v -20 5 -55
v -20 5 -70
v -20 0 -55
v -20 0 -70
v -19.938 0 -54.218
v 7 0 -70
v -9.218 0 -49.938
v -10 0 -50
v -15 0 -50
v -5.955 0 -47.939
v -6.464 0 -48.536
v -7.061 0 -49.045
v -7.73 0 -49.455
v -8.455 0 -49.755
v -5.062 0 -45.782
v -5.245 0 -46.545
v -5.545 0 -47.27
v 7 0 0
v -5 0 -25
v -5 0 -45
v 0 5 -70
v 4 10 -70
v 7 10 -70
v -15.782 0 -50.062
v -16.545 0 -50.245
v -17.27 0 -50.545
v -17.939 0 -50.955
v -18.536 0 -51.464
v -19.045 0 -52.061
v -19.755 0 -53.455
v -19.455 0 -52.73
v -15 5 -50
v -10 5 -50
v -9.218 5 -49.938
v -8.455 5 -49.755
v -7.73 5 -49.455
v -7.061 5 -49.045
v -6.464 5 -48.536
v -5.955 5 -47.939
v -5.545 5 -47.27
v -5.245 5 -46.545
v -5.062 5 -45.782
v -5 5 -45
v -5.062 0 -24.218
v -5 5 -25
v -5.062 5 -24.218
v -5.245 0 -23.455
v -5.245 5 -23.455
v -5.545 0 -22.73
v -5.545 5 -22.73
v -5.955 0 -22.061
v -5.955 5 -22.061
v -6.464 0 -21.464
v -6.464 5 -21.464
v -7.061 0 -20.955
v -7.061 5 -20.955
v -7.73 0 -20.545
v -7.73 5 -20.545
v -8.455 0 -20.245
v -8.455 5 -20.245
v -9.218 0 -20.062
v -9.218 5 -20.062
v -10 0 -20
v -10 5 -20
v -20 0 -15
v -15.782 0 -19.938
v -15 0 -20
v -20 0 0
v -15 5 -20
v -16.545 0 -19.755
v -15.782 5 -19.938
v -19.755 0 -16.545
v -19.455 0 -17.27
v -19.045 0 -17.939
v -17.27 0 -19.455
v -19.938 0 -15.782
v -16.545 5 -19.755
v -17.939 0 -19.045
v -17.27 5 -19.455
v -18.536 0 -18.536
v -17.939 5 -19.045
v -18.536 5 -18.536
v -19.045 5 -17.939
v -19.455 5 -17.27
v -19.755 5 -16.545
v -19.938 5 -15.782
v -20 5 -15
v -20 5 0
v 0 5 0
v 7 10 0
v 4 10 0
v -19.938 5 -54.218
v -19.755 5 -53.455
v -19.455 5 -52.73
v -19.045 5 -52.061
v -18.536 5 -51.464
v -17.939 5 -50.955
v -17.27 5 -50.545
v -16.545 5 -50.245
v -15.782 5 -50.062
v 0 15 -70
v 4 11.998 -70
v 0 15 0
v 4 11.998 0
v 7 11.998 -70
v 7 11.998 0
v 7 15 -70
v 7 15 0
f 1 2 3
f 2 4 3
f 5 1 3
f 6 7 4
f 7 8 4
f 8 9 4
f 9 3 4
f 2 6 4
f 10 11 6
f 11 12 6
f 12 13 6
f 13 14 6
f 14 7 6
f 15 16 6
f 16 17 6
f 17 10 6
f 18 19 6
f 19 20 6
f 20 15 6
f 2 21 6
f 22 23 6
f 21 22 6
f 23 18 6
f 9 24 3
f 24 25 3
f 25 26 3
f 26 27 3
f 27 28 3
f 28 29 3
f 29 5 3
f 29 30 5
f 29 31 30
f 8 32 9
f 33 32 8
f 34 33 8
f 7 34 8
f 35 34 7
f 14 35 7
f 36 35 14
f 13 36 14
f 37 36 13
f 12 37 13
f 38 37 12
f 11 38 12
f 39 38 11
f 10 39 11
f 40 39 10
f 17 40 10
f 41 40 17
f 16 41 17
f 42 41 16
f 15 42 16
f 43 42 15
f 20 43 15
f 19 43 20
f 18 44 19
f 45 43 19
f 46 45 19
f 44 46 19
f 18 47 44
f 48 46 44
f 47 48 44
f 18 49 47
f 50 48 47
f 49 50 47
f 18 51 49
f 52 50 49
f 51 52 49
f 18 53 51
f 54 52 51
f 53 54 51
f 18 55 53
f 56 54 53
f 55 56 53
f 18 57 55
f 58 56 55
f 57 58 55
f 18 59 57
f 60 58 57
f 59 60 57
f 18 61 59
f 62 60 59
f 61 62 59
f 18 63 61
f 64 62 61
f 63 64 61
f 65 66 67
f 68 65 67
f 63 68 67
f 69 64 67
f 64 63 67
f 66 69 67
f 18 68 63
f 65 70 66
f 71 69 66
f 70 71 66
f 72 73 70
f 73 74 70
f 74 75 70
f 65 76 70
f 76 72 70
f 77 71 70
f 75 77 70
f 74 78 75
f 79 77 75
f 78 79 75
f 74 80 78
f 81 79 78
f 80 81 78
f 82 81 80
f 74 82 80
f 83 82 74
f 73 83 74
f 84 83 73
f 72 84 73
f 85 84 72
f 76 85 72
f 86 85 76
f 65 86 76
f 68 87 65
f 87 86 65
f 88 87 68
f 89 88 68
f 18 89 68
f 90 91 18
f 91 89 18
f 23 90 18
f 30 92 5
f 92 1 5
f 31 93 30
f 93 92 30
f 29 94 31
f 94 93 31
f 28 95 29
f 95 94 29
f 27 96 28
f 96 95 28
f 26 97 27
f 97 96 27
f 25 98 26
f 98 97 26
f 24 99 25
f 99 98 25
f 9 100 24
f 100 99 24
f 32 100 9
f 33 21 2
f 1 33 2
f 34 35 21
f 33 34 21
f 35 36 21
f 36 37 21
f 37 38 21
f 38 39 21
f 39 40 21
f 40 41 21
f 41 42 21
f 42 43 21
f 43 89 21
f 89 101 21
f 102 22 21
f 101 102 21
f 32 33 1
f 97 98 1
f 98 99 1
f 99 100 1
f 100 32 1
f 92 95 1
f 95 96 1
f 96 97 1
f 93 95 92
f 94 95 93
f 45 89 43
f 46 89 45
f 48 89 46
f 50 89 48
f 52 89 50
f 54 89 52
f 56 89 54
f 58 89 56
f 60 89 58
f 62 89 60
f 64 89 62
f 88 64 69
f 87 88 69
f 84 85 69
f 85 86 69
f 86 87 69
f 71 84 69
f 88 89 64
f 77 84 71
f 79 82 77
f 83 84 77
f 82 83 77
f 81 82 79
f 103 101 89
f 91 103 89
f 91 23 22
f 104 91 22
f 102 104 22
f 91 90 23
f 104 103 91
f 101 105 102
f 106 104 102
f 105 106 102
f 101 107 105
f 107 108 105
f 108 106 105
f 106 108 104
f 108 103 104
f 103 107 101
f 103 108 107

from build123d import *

# Parameters (mm, degrees)
SKETCH4_W           = 20
SKETCH4_H           = 70
BOSS_EXTRUDE2_DEPTH = 5
SKETCH5_W           = 7
SKETCH5_H           = 70
BOSS_EXTRUDE3_DEPTH = 10
SKETCH6_W           = 70
SKETCH6_H           = 1.998143523
CUT_EXTRUDE1_DEPTH  = 3
SKETCH8_W           = 10
SKETCH8_H           = 30
CUT_EXTRUDE2_DEPTH  = 74.484692283
FILLET3_START       = -1
FILLET3_DEPTH       = 6
FILLET3_2_DEPTH     = 5
FILLET4_R           = 5
SKETCH10_W          = 13.639904779
SKETCH10_H          = 5
CUT_EXTRUDE3_DEPTH  = 75.330343737
SKETCH11_W          = 70
SKETCH11_H          = 5
BOSS_EXTRUDE4_DEPTH = 20
SKETCH13_W          = 15
SKETCH13_H          = 30
CUT_EXTRUDE4_DEPTH  = 20
FILLET6_R           = 5


with BuildPart() as part:
    # Sketch4 → Boss-Extrude2 (new body)
    with BuildSketch(Plane(origin=(0, 0, 0), x_dir=(1, 0, 0), z_dir=(0, 1, 0))):
        with Locations((10, 35)):
            Rectangle(SKETCH4_W, SKETCH4_H)
    extrude(amount=BOSS_EXTRUDE2_DEPTH)

    # Sketch5 → Boss-Extrude3 (add)
    with BuildSketch(Plane(origin=(0, 5, 0), x_dir=(1, 0, 0), z_dir=(0, 1, 0))):
        with Locations((3.5, 35)):
            Rectangle(SKETCH5_W, SKETCH5_H)
    extrude(amount=BOSS_EXTRUDE3_DEPTH)

    # Sketch6 → Cut-Extrude1 (cut)
    with BuildSketch(Plane(origin=(7, 0, 0), x_dir=(0, 0, -1), z_dir=(1, 0, 0))):
        with Locations((35, 10.999071762)):
            Rectangle(SKETCH6_W, SKETCH6_H)
    extrude(amount=-CUT_EXTRUDE1_DEPTH, mode=Mode.SUBTRACT)

    # Sketch8 → Cut-Extrude2 (cut, through all)
    with BuildSketch(Plane(origin=(0, 5, 0), x_dir=(1, 0, 0), z_dir=(0, 1, 0))):
        with Locations((15, 35)):
            Rectangle(SKETCH8_W, SKETCH8_H)
    extrude(amount=-CUT_EXTRUDE2_DEPTH, mode=Mode.SUBTRACT)

    # Fillet3: read off the stored shape, not the designer's step
    # Fillet3 outline → Fillet3 (cut)
    with BuildSketch(Plane(origin=(0, 0, 0), x_dir=(1, 0, 0), z_dir=(0, 1, 0)).offset(FILLET3_START)):
        with BuildLine():
            Line((20, 50), (20, 55))
            ThreePointArc((20, 55), (18.535533906, 51.464466094), (15, 50))
            Line((15, 50), (20, 50))
        make_face()
        with BuildLine():
            Line((20, 20), (15, 20))
            ThreePointArc((15, 20), (18.535533906, 18.535533906), (20, 15))
            Line((20, 15), (20, 20))
        make_face()
    extrude(amount=FILLET3_DEPTH, mode=Mode.SUBTRACT)

    # Fillet3 2 outline → Fillet3 2 (add)
    with BuildSketch(Plane(origin=(0, 0, 0), x_dir=(1, 0, 0), z_dir=(0, 1, 0))):
        with BuildLine():
            ThreePointArc((15, 20), (11.464466094, 21.464466094), (10, 25))
            Line((10, 25), (10, 20))
            Line((10, 20), (15, 20))
        make_face()
        with BuildLine():
            ThreePointArc((10, 45), (11.464466094, 48.535533906), (15, 50))
            Line((15, 50), (10, 50))
            Line((10, 50), (10, 45))
        make_face()
    extrude(amount=FILLET3_2_DEPTH)

    # Fillet4
    fillet4_edges = [part.edges().sort_by_distance(p)[0] for p in [
        (20, 2.5, -70),
        (20, 2.5, 0),
    ]]
    fillet(fillet4_edges, radius=FILLET4_R)

    # Sketch10 → Cut-Extrude3 (cut, through all)
    with BuildSketch(Plane(origin=(0, 0, -70), x_dir=(-1, 0, 0), z_dir=(0, 0, -1))):
        with Locations((-13.81995239, 2.5)):
            Rectangle(SKETCH10_W, SKETCH10_H)
    extrude(amount=-CUT_EXTRUDE3_DEPTH, mode=Mode.SUBTRACT)

    # Sketch11 → Boss-Extrude4 (add)
    with BuildSketch(Plane.ZY):
        with Locations((-35, 2.5)):
            Rectangle(SKETCH11_W, SKETCH11_H)
    extrude(amount=BOSS_EXTRUDE4_DEPTH)

    # Sketch13 → Cut-Extrude4 (cut)
    with BuildSketch(Plane(origin=(0, 5, 0), x_dir=(1, 0, 0), z_dir=(0, 1, 0))):
        with Locations((-12.5, 35)):
            Rectangle(SKETCH13_W, SKETCH13_H)
    extrude(amount=-CUT_EXTRUDE4_DEPTH, mode=Mode.SUBTRACT)

    # Fillet6
    fillet6_edges = [part.edges().sort_by_distance(p)[0] for p in [
        (-20, 2.5, -50),
        (-20, 2.5, -20),
        (-5, 2.5, -20),
        (-5, 2.5, -50),
    ]]
    fillet(fillet6_edges, radius=FILLET6_R)


solid = part.part
